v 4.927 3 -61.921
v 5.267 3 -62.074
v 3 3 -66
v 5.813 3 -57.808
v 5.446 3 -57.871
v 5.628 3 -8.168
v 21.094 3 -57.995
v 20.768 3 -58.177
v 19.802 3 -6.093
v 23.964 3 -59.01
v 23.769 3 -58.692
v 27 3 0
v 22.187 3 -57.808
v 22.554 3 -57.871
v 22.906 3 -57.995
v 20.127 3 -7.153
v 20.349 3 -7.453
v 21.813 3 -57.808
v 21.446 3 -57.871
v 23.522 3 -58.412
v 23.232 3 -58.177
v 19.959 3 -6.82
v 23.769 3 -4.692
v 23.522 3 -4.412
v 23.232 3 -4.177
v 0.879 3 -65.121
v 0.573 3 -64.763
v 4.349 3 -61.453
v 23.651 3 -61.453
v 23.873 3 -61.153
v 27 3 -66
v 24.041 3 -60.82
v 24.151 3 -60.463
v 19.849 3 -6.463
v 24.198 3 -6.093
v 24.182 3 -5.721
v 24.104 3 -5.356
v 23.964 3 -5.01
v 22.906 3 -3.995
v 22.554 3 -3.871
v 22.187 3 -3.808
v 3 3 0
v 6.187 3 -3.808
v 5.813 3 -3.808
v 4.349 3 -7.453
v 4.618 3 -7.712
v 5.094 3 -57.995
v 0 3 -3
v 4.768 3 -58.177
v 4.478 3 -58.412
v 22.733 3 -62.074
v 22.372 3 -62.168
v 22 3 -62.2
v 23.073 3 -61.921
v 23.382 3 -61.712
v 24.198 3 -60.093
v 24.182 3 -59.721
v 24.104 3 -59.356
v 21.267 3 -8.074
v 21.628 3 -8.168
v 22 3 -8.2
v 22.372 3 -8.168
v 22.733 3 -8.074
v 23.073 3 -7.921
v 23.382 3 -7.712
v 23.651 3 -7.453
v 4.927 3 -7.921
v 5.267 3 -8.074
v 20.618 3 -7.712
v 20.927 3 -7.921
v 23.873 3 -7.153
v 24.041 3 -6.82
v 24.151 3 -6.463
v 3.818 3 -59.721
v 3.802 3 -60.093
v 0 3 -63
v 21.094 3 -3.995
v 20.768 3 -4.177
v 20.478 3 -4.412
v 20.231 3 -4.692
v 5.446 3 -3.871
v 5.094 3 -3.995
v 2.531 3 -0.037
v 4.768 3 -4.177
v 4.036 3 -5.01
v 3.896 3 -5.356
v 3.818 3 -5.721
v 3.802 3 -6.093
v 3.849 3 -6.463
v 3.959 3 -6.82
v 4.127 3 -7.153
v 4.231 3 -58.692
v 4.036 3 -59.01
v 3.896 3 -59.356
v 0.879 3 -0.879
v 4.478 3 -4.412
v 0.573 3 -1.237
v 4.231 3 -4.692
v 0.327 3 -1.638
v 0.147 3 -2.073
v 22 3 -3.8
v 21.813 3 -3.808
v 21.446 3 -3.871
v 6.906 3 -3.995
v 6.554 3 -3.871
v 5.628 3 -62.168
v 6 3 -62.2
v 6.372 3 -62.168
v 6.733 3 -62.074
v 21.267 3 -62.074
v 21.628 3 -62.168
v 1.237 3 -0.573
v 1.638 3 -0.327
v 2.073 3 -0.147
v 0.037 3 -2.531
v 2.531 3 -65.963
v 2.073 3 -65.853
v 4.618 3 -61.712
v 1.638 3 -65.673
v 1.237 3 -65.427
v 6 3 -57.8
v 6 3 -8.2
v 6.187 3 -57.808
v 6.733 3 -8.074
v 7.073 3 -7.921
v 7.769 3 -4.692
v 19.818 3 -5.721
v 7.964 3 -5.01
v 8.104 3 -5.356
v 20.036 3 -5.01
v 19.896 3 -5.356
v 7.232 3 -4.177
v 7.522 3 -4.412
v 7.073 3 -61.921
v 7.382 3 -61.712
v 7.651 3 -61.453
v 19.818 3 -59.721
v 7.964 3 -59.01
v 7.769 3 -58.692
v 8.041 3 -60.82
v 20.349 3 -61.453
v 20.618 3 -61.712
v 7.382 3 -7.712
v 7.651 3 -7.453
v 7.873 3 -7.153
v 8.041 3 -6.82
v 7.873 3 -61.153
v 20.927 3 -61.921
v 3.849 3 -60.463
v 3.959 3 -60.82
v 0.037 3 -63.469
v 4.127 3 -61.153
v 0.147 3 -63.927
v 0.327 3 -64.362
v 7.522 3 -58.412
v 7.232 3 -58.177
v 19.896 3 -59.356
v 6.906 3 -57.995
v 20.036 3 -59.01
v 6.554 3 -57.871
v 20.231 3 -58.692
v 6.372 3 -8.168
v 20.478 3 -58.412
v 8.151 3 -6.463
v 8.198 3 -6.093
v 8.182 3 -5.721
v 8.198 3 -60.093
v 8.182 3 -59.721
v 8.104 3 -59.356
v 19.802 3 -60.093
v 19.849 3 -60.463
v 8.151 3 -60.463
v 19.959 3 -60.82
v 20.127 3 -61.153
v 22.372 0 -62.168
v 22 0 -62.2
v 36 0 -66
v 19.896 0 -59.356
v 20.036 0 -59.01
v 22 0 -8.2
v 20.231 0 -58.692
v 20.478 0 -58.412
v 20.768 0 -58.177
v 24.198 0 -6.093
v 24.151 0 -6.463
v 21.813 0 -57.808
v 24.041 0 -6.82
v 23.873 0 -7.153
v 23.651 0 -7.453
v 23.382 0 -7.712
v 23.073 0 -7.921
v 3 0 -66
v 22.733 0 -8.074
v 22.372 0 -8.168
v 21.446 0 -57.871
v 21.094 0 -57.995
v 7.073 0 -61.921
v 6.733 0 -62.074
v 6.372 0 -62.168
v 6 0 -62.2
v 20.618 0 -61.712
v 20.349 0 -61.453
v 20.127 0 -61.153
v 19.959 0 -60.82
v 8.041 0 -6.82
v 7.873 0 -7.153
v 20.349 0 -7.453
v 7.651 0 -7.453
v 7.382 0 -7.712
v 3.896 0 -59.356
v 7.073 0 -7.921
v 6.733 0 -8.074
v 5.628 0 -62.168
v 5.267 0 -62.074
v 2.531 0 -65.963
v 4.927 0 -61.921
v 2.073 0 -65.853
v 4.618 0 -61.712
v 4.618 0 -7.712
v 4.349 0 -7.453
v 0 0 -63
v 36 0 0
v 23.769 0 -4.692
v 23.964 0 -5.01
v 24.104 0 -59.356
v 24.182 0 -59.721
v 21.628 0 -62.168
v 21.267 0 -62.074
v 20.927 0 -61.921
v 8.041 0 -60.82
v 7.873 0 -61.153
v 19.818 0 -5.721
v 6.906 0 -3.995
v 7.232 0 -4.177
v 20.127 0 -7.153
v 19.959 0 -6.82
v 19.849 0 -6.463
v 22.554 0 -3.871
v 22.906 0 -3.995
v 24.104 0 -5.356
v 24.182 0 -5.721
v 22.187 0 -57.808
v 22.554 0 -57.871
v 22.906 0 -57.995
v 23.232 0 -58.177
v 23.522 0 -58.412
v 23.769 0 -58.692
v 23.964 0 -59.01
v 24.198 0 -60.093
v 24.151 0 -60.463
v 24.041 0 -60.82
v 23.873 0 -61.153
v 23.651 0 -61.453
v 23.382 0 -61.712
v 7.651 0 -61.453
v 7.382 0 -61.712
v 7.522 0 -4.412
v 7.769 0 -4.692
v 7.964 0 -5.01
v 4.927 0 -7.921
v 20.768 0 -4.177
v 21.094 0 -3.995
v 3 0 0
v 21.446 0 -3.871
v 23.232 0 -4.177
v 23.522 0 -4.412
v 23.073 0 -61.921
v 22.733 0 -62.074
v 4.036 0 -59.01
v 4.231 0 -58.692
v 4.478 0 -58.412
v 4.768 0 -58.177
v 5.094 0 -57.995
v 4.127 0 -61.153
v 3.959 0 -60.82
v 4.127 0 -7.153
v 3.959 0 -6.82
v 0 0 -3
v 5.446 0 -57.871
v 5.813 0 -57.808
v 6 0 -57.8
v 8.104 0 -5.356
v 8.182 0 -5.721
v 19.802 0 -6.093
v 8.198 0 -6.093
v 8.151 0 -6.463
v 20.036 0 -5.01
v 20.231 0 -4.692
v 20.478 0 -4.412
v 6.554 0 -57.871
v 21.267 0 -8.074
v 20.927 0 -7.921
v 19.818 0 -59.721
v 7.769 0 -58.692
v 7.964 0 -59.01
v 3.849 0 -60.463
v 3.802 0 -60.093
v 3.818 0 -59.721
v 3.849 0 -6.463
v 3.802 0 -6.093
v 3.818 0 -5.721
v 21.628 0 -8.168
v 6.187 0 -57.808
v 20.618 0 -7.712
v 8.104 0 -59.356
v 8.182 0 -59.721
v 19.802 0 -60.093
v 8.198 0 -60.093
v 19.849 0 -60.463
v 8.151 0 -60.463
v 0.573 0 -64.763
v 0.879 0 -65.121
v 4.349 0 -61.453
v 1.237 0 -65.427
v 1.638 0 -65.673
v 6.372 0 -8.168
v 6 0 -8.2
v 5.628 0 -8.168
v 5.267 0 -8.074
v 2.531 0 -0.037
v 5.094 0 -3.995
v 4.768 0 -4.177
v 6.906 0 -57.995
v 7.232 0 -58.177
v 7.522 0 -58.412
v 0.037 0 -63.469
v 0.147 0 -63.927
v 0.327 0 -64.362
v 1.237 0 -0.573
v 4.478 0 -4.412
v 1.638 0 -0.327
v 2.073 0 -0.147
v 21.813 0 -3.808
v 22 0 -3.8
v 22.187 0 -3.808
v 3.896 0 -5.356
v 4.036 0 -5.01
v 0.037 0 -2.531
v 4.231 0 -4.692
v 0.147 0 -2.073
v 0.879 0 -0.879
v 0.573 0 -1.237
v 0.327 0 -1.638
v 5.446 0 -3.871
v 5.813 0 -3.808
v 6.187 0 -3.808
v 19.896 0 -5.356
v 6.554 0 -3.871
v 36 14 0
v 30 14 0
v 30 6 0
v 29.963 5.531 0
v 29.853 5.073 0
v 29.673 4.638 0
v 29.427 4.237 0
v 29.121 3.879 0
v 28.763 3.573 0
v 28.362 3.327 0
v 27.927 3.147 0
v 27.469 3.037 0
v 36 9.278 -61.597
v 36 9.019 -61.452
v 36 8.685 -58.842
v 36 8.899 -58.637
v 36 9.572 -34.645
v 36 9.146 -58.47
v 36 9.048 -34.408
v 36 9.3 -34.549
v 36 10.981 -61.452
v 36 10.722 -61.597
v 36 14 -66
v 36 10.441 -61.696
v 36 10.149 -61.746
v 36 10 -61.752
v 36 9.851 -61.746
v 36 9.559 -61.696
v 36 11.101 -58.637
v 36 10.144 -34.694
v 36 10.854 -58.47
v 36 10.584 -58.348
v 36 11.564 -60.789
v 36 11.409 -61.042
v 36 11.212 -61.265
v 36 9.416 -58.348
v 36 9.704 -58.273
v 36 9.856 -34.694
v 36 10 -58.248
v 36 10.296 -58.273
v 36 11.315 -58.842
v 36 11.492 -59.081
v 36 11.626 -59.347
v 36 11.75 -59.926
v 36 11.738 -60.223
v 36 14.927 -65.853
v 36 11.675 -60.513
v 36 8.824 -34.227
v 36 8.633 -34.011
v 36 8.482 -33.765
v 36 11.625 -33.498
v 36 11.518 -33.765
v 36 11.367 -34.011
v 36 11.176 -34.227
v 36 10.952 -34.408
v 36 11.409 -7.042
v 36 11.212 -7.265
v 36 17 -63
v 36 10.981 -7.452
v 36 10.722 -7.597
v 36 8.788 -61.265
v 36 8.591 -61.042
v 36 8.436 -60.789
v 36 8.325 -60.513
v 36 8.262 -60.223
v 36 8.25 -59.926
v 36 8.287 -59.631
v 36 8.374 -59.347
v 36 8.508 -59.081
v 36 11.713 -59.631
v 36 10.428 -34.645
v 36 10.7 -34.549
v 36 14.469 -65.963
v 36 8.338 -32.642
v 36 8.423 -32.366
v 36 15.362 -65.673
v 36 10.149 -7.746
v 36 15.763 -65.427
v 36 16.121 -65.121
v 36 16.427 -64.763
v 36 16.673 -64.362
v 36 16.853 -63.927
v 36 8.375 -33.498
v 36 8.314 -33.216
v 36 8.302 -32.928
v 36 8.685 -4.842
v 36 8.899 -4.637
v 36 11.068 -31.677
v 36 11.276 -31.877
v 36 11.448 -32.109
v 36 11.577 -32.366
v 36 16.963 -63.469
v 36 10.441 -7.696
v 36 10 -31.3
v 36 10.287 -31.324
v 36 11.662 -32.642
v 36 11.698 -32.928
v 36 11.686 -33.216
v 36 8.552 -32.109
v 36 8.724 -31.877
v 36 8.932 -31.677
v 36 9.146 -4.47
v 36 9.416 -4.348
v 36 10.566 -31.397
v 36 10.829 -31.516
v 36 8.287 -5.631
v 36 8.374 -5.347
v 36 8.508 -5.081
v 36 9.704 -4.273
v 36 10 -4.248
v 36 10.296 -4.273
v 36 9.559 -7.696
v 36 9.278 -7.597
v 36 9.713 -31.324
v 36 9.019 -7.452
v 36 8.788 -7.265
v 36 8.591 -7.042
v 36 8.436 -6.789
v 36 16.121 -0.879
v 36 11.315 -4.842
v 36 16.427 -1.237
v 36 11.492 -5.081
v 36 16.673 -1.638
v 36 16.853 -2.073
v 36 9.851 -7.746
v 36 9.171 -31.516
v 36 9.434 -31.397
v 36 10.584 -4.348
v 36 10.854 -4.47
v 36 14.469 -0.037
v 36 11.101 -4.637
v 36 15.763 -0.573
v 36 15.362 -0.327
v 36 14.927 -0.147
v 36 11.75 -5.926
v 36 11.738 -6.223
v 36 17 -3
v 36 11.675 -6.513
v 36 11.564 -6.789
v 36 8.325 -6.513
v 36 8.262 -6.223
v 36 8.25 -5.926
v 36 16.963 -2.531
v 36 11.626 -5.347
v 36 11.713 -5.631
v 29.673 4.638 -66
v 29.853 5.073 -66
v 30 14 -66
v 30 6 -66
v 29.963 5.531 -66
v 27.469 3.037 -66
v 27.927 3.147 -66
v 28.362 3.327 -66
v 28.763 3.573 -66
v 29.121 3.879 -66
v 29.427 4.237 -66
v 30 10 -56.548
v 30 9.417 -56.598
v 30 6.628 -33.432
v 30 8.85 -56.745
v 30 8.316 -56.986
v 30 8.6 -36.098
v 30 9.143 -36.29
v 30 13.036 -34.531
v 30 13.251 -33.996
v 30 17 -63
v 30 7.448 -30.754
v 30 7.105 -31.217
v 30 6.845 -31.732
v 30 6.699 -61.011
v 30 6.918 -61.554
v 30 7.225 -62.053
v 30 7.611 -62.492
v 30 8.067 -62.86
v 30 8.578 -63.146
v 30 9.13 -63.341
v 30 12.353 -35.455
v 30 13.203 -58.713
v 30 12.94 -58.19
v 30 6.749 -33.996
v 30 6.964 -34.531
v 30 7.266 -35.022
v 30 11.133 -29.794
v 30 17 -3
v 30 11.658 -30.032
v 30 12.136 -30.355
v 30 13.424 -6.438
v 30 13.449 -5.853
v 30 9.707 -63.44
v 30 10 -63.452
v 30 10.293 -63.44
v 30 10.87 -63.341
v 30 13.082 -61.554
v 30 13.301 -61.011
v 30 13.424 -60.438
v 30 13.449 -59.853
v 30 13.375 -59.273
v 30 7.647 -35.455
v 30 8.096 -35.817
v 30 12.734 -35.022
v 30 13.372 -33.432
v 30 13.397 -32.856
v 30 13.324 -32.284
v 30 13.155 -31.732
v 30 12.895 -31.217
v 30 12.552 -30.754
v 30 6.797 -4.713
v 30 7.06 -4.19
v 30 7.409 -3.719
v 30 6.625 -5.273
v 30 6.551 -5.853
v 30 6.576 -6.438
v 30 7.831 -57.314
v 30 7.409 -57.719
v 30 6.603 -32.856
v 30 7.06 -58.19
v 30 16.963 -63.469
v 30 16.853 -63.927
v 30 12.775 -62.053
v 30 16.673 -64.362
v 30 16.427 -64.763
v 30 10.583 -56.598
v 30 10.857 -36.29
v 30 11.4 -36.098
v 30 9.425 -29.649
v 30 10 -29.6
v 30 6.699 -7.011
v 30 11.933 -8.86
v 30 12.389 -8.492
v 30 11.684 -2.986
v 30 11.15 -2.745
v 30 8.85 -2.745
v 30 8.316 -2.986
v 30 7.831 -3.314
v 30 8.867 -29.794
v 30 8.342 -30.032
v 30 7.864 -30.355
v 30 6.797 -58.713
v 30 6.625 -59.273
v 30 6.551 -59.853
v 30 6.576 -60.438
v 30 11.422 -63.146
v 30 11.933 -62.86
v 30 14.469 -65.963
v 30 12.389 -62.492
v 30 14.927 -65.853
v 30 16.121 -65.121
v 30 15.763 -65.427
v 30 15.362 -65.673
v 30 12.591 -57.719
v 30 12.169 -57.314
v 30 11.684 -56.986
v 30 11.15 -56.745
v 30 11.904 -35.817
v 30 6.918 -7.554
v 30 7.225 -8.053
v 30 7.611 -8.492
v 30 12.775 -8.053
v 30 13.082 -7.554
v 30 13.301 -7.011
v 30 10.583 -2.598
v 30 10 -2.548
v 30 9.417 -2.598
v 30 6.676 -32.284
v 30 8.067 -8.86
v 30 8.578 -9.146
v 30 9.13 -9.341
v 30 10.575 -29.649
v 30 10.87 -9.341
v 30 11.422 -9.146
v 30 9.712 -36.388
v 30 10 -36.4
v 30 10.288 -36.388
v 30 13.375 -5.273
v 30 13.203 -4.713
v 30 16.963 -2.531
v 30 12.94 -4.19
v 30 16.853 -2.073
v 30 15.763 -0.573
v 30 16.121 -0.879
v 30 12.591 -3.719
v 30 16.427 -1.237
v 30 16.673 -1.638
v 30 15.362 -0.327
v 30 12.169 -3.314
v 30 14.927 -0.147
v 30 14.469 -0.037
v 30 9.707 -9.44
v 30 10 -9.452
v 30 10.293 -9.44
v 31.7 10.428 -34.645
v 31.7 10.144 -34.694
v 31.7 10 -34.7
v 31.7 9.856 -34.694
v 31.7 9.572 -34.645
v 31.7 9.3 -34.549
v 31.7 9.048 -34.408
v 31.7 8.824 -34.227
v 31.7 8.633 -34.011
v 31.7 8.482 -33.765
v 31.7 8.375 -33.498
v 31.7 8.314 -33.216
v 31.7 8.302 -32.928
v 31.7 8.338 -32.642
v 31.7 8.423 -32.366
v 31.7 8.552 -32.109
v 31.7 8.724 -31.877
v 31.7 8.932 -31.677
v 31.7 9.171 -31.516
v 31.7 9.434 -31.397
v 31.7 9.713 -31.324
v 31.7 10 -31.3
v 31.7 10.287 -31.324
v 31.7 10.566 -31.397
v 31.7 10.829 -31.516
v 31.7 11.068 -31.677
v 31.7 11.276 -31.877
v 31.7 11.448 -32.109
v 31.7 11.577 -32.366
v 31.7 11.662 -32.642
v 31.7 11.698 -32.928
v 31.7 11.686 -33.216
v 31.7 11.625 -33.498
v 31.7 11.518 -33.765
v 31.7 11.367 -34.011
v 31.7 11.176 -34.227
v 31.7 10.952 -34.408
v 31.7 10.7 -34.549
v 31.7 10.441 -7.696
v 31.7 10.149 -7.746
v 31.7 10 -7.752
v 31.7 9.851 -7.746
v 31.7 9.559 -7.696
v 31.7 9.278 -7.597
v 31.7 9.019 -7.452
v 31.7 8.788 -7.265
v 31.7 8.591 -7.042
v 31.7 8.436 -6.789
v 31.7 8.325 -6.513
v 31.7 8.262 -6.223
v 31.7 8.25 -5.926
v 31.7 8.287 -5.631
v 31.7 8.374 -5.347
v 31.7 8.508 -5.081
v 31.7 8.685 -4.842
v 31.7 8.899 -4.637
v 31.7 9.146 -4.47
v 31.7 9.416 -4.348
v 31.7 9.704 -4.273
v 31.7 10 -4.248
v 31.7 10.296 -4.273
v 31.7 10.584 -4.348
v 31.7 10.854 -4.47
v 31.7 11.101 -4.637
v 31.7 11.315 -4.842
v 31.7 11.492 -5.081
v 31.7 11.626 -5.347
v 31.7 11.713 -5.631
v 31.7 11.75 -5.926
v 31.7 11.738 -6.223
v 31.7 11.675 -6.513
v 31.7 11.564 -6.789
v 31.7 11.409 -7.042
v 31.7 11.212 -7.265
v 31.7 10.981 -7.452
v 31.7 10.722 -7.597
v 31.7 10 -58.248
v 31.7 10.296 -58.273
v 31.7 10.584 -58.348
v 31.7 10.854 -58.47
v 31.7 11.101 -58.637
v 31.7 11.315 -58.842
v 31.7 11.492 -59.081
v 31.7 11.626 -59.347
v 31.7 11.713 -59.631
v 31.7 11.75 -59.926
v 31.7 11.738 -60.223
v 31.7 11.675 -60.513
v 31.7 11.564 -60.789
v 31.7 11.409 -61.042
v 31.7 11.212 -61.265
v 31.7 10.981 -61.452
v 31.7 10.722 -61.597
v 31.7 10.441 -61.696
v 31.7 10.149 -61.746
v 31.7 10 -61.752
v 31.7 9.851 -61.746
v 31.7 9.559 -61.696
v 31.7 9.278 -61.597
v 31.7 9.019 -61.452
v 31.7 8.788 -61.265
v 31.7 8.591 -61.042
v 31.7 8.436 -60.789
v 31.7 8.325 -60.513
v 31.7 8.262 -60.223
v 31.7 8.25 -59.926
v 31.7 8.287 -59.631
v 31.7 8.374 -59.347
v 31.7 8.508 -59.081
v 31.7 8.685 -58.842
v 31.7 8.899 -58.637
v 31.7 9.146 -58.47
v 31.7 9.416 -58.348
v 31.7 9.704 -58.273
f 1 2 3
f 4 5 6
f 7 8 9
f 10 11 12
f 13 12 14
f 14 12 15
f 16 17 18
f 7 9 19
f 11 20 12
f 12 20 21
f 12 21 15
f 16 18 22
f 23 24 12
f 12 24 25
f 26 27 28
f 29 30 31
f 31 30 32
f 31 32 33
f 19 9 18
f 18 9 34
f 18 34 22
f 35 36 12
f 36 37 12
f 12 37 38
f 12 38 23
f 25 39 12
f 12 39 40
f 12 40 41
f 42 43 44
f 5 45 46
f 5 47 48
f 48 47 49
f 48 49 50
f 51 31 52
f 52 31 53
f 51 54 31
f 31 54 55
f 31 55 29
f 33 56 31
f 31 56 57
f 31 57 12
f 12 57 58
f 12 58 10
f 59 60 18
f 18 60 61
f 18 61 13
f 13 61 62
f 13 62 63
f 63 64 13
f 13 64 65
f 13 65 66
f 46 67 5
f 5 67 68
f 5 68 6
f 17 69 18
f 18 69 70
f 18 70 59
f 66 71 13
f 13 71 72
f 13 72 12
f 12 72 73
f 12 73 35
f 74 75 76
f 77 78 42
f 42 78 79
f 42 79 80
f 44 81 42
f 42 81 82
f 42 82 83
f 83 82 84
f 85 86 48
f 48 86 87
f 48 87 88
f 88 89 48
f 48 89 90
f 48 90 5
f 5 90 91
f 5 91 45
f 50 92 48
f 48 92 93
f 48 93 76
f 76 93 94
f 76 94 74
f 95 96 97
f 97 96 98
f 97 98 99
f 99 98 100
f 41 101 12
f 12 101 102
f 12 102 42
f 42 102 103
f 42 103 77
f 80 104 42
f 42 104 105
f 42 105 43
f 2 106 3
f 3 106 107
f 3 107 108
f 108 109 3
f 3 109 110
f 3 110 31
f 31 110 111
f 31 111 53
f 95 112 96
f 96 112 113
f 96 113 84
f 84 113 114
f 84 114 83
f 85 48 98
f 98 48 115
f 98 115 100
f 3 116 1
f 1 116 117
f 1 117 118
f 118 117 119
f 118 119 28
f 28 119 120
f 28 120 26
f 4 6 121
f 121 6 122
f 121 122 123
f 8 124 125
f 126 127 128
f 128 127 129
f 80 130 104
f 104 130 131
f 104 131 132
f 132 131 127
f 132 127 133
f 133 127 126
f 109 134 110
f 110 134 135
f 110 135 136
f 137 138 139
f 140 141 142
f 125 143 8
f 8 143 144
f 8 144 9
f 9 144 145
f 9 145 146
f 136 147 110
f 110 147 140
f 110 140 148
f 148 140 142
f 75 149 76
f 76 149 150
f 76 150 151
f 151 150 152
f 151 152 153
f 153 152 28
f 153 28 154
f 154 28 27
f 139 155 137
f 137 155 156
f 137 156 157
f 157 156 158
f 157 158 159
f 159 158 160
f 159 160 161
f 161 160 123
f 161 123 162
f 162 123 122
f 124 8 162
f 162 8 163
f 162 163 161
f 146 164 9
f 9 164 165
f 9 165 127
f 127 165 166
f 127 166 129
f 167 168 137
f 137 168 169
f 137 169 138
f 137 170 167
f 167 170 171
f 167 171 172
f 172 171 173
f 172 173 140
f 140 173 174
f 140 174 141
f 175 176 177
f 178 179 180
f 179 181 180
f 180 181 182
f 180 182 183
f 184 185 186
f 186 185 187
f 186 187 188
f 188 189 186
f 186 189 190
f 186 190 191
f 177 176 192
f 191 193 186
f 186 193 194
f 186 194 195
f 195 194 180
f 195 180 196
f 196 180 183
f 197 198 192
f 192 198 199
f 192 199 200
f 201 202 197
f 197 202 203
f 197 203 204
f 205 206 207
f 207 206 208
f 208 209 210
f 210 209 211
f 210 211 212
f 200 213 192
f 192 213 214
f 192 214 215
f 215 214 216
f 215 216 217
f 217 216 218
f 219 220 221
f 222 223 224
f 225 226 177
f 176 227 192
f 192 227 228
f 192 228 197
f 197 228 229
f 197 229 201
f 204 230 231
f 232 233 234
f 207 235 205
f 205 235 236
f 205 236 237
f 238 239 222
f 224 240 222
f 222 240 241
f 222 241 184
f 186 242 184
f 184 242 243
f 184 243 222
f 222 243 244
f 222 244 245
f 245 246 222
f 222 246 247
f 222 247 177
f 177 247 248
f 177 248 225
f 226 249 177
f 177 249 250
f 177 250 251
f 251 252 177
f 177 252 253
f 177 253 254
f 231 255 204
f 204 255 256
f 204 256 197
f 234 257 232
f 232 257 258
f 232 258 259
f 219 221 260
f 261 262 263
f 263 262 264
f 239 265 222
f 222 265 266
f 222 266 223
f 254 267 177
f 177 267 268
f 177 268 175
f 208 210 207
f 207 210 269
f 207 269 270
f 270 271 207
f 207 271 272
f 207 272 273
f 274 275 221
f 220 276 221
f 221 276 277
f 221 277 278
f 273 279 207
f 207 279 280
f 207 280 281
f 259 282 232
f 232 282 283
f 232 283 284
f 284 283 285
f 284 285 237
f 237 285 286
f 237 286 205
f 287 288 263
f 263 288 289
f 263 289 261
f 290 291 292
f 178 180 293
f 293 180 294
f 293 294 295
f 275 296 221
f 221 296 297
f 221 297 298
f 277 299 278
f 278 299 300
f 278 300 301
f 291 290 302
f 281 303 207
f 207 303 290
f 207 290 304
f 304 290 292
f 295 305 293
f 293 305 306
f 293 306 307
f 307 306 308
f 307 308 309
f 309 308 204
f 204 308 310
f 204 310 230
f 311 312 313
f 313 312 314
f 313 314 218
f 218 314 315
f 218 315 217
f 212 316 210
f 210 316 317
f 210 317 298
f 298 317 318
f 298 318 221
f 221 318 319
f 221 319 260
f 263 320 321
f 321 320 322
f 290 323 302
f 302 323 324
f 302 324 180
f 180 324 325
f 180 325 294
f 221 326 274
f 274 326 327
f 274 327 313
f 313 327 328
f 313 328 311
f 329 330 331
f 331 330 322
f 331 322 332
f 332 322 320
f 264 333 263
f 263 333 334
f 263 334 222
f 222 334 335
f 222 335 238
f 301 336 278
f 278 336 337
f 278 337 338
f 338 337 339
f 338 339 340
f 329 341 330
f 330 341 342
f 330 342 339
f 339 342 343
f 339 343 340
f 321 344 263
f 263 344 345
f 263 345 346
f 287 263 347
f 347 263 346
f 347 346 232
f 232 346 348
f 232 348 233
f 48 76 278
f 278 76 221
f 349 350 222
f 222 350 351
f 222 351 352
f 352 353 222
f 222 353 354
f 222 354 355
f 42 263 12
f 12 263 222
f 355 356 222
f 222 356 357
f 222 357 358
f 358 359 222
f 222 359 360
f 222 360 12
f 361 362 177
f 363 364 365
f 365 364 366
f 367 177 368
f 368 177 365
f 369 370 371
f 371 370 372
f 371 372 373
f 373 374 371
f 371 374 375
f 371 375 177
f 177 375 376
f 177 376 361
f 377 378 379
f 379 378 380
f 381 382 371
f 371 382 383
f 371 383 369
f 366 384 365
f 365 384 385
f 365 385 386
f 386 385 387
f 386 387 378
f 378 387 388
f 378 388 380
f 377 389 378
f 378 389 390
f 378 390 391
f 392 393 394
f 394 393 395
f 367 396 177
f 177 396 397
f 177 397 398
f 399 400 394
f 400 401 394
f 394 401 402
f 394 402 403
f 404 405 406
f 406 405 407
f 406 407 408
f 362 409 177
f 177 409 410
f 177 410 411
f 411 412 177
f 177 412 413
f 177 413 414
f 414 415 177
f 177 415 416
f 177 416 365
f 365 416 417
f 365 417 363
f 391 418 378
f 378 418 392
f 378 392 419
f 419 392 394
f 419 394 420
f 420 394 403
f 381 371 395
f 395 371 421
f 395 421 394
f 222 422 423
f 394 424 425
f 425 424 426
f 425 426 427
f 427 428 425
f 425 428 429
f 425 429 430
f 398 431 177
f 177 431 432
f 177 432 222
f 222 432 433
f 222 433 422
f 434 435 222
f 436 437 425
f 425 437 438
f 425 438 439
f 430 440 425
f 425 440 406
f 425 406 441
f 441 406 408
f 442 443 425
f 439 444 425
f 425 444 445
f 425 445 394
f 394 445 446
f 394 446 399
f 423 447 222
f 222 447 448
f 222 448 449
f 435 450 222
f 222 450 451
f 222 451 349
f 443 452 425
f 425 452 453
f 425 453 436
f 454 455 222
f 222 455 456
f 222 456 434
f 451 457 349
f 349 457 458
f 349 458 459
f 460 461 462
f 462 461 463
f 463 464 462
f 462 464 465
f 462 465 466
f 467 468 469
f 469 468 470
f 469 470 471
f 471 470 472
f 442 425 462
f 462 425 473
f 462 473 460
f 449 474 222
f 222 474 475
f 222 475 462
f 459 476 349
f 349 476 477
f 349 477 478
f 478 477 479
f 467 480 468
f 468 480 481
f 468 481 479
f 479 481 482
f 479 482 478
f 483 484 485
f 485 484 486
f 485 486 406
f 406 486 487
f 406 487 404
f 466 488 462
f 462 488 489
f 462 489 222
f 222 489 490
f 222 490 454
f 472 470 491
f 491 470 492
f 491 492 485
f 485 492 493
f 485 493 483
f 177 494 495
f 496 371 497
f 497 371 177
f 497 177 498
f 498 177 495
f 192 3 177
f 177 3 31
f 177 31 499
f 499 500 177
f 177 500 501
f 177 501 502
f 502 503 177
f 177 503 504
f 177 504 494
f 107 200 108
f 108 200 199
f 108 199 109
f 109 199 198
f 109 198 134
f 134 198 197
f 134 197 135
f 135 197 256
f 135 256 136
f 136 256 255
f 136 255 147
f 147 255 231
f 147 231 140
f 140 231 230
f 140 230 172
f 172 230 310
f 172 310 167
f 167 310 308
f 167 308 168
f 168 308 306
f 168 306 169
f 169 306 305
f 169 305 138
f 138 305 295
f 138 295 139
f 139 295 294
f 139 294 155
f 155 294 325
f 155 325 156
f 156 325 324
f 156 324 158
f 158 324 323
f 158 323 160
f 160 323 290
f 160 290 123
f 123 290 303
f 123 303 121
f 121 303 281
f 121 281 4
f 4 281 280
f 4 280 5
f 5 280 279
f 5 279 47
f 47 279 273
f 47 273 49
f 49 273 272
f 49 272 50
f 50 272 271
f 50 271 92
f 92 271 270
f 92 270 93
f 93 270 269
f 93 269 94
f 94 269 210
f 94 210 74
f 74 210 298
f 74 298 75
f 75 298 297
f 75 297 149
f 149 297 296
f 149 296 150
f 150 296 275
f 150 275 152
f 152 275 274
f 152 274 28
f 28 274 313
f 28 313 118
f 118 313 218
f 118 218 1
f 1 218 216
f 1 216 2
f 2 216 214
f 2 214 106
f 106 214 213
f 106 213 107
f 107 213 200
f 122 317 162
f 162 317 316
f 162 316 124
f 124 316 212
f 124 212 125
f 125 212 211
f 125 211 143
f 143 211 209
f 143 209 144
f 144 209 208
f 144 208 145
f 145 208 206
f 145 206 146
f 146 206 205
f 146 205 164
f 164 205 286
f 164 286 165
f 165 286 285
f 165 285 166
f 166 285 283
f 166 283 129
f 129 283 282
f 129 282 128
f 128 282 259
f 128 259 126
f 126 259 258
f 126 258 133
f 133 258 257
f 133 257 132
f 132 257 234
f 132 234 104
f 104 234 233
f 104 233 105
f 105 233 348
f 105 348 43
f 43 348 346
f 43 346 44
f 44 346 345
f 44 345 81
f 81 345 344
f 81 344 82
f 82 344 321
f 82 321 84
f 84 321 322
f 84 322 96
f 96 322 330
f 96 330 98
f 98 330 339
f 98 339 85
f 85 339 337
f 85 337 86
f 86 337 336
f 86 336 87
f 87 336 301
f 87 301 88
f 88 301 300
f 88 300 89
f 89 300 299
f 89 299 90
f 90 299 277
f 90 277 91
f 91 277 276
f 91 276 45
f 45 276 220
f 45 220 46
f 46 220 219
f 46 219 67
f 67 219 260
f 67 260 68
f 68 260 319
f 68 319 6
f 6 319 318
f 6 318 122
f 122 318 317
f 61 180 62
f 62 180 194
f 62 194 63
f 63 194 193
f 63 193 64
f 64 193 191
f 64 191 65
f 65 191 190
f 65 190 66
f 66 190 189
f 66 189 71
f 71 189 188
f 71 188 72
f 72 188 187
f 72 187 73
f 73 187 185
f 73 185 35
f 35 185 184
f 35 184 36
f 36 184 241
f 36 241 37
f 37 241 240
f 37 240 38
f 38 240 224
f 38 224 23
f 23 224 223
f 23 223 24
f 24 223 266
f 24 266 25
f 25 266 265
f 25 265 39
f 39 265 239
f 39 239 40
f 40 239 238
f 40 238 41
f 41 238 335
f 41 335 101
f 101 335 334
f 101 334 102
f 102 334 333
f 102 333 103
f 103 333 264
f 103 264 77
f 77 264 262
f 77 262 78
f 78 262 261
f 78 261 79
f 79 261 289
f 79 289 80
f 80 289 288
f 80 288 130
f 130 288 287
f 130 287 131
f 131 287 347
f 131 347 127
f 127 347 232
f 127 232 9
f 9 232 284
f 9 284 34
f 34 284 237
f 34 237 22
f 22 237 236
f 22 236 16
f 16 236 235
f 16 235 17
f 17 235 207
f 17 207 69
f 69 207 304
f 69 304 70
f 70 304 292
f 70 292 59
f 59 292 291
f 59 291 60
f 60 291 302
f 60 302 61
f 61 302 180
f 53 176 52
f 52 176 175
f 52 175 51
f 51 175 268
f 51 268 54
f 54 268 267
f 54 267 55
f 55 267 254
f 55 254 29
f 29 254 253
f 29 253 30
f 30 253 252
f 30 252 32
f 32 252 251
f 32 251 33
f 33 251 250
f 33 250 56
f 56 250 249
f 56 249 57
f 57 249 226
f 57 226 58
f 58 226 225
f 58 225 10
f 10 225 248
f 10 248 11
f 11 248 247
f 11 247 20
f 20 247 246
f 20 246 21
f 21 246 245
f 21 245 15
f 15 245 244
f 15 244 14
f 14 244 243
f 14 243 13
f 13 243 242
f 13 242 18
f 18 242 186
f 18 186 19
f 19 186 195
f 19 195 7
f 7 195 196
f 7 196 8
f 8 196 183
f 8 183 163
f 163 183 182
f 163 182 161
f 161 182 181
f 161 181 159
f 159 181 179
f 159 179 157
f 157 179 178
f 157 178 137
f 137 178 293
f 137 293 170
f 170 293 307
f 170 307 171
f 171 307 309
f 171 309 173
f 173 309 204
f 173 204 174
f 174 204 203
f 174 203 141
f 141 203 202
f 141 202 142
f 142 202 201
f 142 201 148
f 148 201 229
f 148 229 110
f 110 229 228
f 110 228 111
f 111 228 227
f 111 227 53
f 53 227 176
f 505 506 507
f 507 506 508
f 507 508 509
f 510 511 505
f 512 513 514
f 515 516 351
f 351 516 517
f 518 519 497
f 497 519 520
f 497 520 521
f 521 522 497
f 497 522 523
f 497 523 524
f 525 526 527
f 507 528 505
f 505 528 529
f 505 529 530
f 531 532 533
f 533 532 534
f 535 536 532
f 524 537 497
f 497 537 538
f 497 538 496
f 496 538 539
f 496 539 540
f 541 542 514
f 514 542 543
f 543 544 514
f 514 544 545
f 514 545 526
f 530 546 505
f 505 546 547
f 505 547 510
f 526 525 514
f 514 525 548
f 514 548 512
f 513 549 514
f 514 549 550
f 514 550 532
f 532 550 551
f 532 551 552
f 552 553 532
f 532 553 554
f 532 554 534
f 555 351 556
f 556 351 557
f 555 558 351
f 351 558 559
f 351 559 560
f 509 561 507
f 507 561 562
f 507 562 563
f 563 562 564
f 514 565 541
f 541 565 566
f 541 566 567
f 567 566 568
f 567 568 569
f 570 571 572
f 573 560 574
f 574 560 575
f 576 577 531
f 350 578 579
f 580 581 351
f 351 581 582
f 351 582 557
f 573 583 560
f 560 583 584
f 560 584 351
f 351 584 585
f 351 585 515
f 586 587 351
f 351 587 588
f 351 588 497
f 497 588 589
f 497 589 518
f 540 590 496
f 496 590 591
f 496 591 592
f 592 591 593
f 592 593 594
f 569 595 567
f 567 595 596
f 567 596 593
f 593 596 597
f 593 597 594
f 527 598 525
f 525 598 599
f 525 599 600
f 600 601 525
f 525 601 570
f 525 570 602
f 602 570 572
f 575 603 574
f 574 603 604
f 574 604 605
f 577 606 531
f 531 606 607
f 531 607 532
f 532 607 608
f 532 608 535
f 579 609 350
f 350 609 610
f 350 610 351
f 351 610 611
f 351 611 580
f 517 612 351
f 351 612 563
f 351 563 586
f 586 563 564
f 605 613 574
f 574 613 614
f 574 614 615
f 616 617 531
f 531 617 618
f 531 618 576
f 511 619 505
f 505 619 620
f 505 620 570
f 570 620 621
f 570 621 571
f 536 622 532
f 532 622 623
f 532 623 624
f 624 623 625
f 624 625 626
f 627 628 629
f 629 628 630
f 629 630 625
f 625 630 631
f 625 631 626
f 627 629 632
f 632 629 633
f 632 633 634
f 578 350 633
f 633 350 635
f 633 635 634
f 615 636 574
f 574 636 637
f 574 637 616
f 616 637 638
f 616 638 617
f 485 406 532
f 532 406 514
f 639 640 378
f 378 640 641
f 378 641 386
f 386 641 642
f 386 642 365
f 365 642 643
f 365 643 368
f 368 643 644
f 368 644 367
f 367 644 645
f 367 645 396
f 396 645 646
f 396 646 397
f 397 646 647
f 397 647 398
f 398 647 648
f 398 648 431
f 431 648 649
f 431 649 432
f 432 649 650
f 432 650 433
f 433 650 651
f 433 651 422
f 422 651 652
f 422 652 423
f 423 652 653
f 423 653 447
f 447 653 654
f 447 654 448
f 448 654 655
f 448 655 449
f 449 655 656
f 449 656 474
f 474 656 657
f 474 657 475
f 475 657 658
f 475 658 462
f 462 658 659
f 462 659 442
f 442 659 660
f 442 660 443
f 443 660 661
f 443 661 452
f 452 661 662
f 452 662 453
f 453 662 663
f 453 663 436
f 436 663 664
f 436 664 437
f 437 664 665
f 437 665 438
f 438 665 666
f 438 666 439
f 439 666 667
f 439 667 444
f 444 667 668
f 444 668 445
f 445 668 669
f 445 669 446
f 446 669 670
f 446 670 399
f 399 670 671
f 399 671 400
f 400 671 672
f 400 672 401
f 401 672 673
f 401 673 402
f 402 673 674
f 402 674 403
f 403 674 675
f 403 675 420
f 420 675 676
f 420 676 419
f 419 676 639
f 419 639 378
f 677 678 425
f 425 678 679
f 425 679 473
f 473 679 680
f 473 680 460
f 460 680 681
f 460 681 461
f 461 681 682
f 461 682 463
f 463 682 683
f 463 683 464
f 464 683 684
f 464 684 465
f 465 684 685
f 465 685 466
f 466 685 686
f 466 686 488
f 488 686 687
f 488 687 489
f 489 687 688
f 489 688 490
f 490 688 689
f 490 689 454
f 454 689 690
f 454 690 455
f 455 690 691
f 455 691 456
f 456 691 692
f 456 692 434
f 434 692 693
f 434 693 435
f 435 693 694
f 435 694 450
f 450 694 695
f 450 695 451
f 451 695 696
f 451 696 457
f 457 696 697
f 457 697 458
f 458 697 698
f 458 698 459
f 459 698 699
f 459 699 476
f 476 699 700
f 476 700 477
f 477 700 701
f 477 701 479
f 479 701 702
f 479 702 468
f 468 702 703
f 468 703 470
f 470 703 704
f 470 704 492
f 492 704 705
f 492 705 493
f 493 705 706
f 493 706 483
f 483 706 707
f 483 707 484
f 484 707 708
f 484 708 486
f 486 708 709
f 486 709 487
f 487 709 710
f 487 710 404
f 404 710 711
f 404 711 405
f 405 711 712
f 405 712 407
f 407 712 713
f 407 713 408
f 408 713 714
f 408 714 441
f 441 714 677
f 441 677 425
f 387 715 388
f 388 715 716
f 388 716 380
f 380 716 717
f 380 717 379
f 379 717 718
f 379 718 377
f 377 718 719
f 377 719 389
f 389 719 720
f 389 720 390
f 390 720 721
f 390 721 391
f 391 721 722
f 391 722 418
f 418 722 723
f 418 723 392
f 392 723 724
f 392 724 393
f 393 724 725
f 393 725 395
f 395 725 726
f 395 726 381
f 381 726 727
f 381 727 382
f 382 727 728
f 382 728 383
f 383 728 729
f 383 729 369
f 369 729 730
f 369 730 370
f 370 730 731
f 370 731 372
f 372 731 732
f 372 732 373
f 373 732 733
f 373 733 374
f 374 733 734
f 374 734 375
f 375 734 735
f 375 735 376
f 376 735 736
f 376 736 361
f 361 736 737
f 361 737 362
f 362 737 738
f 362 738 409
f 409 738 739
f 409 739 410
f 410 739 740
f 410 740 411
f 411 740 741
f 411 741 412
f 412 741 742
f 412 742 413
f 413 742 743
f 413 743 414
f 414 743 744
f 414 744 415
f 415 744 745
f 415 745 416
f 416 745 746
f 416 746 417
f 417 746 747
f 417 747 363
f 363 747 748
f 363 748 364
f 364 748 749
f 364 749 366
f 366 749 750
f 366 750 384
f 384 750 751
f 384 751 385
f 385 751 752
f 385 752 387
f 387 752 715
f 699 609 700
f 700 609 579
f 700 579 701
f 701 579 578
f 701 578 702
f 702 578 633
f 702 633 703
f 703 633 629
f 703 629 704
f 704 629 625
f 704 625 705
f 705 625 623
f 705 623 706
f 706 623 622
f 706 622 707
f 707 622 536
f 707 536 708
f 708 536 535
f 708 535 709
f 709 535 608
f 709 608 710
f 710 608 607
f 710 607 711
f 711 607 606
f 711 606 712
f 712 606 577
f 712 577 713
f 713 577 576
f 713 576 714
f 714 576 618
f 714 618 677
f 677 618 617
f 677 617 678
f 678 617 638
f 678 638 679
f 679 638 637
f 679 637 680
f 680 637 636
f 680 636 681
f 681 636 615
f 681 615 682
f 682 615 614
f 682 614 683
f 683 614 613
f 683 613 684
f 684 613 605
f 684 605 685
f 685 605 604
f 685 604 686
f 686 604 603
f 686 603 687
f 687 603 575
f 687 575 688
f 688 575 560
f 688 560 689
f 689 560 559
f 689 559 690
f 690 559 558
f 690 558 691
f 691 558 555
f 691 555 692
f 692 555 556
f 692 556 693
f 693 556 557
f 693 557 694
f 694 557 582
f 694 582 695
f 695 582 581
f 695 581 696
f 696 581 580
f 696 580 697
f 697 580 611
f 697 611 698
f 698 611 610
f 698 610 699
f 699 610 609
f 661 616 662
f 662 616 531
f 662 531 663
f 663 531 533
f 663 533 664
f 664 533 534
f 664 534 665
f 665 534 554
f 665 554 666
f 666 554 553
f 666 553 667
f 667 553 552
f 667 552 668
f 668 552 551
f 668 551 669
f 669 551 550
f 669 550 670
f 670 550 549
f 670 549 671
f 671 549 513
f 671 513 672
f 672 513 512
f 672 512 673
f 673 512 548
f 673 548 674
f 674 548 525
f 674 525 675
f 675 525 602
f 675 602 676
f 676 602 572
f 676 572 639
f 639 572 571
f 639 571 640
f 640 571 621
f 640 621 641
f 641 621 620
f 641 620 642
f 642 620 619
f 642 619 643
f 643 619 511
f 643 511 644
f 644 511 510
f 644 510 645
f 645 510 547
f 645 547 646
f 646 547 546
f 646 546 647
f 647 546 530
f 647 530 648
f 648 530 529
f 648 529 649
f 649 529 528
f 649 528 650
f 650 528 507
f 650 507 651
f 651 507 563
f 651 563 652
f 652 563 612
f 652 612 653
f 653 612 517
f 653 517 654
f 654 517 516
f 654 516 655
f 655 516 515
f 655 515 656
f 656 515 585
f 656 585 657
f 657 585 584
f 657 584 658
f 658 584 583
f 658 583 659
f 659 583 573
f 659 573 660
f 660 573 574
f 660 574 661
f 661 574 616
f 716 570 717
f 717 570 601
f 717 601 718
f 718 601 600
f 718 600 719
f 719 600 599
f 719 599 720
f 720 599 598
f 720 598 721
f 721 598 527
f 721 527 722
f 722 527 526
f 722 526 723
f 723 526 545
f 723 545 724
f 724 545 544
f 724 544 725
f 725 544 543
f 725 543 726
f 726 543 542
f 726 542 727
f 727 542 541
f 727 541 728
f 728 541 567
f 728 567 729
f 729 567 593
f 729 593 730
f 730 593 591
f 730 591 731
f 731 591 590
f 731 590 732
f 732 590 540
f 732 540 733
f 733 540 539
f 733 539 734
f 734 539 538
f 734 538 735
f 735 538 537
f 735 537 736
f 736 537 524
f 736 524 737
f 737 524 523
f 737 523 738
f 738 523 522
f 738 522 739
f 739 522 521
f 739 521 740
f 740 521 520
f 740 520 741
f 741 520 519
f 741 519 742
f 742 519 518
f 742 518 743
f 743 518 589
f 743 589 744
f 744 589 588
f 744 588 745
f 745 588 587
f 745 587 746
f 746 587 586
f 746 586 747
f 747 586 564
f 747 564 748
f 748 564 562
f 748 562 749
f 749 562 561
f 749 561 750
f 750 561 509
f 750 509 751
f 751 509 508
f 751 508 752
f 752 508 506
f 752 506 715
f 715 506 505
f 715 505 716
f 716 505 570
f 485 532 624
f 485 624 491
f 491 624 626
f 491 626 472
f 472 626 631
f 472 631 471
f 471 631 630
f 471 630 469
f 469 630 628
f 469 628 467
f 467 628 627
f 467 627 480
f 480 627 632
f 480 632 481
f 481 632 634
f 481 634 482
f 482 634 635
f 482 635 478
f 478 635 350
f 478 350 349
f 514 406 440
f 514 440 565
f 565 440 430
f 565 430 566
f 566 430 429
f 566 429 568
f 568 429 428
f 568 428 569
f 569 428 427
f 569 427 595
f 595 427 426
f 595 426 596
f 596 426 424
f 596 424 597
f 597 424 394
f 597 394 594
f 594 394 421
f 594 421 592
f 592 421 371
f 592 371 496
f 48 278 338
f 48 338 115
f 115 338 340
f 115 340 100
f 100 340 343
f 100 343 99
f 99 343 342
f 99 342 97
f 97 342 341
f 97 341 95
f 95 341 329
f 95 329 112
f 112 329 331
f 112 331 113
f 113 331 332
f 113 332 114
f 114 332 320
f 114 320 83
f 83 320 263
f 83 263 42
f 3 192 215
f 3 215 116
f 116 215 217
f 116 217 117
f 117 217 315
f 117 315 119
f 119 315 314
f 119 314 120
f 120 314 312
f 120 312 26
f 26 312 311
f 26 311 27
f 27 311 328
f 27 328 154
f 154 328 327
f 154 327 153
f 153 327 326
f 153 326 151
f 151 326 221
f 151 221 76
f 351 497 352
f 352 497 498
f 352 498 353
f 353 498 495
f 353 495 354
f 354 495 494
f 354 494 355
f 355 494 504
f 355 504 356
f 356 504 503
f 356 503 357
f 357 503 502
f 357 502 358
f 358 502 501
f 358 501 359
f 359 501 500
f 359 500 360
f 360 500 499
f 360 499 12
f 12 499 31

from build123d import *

# Parameters (mm, degrees)
SKETCH1_W           = 36
SKETCH1_H           = 66
SKETCH1_R           = 2.2
BOSS_EXTRUDE1_DEPTH = 3
SKETCH2_W           = 6
SKETCH2_H           = 66
BOSS_EXTRUDE2_DEPTH = 14
SKETCH3_R           = 1.7
SKETCH3_R_2         = 1.752037124
CUT_EXTRUDE1_DEPTH  = 75.464756765
CHAMFER1_SIZE       = 1.7
FILLET1_R           = 3


with BuildPart() as part:
    # Sketch1 → Boss-Extrude1 (new body)
    with BuildSketch(Plane(origin=(0, 0, 0), x_dir=(1, 0, 0), z_dir=(0, 1, 0))):
        with Locations((18, 33)):
            Rectangle(SKETCH1_W, SKETCH1_H)
        with Locations(Location((6, 60, 0), (0, 0, 270))):
            Circle(SKETCH1_R, mode=Mode.SUBTRACT)
        with Locations(Location((6, 6, 0), (0, 0, 90))):
            Circle(SKETCH1_R, mode=Mode.SUBTRACT)
        with Locations(Location((22, 6, 0), (0, 0, 270))):
            Circle(SKETCH1_R, mode=Mode.SUBTRACT)
        with Locations(Location((22, 60, 0), (0, 0, 90))):
            Circle(SKETCH1_R, mode=Mode.SUBTRACT)
    extrude(amount=BOSS_EXTRUDE1_DEPTH)

    # Sketch2 → Boss-Extrude2 (add)
    with BuildSketch(Plane(origin=(0, 3, 0), x_dir=(1, 0, 0), z_dir=(0, 1, 0))):
        with Locations((33, 33)):
            Rectangle(SKETCH2_W, SKETCH2_H)
    extrude(amount=BOSS_EXTRUDE2_DEPTH)

    # Sketch3 → Cut-Extrude1 (cut, through all)
    with BuildSketch(Plane.ZY.offset(-30)):
        with Locations((-33, 10)):
            Circle(SKETCH3_R)
        with Locations((-6, 10)):
            Circle(SKETCH3_R_2)
        with Locations(Location((-60, 10, 0), (0, 0, 180))):
            Circle(SKETCH3_R_2)
    extrude(amount=-CUT_EXTRUDE1_DEPTH, mode=Mode.SUBTRACT)

    # Chamfer1
    chamfer1_edges = [part.edges().sort_by_distance(p)[0] for p in [
        (30, 10, -58.247962876),
        (30, 10, -7.752037124),
        (30, 10, -34.7),
    ]]
    chamfer(chamfer1_edges, length=CHAMFER1_SIZE)

    # Fillet1
    fillet1_edges = [part.edges().sort_by_distance(p)[0] for p in [
        (30, 3, -33),
        (33, 17, -66),
        (33, 17, 0),
        (0, 1.5, -66),
        (0, 1.5, 0),
    ]]
    fillet(fillet1_edges, radius=FILLET1_R)


solid = part.part
